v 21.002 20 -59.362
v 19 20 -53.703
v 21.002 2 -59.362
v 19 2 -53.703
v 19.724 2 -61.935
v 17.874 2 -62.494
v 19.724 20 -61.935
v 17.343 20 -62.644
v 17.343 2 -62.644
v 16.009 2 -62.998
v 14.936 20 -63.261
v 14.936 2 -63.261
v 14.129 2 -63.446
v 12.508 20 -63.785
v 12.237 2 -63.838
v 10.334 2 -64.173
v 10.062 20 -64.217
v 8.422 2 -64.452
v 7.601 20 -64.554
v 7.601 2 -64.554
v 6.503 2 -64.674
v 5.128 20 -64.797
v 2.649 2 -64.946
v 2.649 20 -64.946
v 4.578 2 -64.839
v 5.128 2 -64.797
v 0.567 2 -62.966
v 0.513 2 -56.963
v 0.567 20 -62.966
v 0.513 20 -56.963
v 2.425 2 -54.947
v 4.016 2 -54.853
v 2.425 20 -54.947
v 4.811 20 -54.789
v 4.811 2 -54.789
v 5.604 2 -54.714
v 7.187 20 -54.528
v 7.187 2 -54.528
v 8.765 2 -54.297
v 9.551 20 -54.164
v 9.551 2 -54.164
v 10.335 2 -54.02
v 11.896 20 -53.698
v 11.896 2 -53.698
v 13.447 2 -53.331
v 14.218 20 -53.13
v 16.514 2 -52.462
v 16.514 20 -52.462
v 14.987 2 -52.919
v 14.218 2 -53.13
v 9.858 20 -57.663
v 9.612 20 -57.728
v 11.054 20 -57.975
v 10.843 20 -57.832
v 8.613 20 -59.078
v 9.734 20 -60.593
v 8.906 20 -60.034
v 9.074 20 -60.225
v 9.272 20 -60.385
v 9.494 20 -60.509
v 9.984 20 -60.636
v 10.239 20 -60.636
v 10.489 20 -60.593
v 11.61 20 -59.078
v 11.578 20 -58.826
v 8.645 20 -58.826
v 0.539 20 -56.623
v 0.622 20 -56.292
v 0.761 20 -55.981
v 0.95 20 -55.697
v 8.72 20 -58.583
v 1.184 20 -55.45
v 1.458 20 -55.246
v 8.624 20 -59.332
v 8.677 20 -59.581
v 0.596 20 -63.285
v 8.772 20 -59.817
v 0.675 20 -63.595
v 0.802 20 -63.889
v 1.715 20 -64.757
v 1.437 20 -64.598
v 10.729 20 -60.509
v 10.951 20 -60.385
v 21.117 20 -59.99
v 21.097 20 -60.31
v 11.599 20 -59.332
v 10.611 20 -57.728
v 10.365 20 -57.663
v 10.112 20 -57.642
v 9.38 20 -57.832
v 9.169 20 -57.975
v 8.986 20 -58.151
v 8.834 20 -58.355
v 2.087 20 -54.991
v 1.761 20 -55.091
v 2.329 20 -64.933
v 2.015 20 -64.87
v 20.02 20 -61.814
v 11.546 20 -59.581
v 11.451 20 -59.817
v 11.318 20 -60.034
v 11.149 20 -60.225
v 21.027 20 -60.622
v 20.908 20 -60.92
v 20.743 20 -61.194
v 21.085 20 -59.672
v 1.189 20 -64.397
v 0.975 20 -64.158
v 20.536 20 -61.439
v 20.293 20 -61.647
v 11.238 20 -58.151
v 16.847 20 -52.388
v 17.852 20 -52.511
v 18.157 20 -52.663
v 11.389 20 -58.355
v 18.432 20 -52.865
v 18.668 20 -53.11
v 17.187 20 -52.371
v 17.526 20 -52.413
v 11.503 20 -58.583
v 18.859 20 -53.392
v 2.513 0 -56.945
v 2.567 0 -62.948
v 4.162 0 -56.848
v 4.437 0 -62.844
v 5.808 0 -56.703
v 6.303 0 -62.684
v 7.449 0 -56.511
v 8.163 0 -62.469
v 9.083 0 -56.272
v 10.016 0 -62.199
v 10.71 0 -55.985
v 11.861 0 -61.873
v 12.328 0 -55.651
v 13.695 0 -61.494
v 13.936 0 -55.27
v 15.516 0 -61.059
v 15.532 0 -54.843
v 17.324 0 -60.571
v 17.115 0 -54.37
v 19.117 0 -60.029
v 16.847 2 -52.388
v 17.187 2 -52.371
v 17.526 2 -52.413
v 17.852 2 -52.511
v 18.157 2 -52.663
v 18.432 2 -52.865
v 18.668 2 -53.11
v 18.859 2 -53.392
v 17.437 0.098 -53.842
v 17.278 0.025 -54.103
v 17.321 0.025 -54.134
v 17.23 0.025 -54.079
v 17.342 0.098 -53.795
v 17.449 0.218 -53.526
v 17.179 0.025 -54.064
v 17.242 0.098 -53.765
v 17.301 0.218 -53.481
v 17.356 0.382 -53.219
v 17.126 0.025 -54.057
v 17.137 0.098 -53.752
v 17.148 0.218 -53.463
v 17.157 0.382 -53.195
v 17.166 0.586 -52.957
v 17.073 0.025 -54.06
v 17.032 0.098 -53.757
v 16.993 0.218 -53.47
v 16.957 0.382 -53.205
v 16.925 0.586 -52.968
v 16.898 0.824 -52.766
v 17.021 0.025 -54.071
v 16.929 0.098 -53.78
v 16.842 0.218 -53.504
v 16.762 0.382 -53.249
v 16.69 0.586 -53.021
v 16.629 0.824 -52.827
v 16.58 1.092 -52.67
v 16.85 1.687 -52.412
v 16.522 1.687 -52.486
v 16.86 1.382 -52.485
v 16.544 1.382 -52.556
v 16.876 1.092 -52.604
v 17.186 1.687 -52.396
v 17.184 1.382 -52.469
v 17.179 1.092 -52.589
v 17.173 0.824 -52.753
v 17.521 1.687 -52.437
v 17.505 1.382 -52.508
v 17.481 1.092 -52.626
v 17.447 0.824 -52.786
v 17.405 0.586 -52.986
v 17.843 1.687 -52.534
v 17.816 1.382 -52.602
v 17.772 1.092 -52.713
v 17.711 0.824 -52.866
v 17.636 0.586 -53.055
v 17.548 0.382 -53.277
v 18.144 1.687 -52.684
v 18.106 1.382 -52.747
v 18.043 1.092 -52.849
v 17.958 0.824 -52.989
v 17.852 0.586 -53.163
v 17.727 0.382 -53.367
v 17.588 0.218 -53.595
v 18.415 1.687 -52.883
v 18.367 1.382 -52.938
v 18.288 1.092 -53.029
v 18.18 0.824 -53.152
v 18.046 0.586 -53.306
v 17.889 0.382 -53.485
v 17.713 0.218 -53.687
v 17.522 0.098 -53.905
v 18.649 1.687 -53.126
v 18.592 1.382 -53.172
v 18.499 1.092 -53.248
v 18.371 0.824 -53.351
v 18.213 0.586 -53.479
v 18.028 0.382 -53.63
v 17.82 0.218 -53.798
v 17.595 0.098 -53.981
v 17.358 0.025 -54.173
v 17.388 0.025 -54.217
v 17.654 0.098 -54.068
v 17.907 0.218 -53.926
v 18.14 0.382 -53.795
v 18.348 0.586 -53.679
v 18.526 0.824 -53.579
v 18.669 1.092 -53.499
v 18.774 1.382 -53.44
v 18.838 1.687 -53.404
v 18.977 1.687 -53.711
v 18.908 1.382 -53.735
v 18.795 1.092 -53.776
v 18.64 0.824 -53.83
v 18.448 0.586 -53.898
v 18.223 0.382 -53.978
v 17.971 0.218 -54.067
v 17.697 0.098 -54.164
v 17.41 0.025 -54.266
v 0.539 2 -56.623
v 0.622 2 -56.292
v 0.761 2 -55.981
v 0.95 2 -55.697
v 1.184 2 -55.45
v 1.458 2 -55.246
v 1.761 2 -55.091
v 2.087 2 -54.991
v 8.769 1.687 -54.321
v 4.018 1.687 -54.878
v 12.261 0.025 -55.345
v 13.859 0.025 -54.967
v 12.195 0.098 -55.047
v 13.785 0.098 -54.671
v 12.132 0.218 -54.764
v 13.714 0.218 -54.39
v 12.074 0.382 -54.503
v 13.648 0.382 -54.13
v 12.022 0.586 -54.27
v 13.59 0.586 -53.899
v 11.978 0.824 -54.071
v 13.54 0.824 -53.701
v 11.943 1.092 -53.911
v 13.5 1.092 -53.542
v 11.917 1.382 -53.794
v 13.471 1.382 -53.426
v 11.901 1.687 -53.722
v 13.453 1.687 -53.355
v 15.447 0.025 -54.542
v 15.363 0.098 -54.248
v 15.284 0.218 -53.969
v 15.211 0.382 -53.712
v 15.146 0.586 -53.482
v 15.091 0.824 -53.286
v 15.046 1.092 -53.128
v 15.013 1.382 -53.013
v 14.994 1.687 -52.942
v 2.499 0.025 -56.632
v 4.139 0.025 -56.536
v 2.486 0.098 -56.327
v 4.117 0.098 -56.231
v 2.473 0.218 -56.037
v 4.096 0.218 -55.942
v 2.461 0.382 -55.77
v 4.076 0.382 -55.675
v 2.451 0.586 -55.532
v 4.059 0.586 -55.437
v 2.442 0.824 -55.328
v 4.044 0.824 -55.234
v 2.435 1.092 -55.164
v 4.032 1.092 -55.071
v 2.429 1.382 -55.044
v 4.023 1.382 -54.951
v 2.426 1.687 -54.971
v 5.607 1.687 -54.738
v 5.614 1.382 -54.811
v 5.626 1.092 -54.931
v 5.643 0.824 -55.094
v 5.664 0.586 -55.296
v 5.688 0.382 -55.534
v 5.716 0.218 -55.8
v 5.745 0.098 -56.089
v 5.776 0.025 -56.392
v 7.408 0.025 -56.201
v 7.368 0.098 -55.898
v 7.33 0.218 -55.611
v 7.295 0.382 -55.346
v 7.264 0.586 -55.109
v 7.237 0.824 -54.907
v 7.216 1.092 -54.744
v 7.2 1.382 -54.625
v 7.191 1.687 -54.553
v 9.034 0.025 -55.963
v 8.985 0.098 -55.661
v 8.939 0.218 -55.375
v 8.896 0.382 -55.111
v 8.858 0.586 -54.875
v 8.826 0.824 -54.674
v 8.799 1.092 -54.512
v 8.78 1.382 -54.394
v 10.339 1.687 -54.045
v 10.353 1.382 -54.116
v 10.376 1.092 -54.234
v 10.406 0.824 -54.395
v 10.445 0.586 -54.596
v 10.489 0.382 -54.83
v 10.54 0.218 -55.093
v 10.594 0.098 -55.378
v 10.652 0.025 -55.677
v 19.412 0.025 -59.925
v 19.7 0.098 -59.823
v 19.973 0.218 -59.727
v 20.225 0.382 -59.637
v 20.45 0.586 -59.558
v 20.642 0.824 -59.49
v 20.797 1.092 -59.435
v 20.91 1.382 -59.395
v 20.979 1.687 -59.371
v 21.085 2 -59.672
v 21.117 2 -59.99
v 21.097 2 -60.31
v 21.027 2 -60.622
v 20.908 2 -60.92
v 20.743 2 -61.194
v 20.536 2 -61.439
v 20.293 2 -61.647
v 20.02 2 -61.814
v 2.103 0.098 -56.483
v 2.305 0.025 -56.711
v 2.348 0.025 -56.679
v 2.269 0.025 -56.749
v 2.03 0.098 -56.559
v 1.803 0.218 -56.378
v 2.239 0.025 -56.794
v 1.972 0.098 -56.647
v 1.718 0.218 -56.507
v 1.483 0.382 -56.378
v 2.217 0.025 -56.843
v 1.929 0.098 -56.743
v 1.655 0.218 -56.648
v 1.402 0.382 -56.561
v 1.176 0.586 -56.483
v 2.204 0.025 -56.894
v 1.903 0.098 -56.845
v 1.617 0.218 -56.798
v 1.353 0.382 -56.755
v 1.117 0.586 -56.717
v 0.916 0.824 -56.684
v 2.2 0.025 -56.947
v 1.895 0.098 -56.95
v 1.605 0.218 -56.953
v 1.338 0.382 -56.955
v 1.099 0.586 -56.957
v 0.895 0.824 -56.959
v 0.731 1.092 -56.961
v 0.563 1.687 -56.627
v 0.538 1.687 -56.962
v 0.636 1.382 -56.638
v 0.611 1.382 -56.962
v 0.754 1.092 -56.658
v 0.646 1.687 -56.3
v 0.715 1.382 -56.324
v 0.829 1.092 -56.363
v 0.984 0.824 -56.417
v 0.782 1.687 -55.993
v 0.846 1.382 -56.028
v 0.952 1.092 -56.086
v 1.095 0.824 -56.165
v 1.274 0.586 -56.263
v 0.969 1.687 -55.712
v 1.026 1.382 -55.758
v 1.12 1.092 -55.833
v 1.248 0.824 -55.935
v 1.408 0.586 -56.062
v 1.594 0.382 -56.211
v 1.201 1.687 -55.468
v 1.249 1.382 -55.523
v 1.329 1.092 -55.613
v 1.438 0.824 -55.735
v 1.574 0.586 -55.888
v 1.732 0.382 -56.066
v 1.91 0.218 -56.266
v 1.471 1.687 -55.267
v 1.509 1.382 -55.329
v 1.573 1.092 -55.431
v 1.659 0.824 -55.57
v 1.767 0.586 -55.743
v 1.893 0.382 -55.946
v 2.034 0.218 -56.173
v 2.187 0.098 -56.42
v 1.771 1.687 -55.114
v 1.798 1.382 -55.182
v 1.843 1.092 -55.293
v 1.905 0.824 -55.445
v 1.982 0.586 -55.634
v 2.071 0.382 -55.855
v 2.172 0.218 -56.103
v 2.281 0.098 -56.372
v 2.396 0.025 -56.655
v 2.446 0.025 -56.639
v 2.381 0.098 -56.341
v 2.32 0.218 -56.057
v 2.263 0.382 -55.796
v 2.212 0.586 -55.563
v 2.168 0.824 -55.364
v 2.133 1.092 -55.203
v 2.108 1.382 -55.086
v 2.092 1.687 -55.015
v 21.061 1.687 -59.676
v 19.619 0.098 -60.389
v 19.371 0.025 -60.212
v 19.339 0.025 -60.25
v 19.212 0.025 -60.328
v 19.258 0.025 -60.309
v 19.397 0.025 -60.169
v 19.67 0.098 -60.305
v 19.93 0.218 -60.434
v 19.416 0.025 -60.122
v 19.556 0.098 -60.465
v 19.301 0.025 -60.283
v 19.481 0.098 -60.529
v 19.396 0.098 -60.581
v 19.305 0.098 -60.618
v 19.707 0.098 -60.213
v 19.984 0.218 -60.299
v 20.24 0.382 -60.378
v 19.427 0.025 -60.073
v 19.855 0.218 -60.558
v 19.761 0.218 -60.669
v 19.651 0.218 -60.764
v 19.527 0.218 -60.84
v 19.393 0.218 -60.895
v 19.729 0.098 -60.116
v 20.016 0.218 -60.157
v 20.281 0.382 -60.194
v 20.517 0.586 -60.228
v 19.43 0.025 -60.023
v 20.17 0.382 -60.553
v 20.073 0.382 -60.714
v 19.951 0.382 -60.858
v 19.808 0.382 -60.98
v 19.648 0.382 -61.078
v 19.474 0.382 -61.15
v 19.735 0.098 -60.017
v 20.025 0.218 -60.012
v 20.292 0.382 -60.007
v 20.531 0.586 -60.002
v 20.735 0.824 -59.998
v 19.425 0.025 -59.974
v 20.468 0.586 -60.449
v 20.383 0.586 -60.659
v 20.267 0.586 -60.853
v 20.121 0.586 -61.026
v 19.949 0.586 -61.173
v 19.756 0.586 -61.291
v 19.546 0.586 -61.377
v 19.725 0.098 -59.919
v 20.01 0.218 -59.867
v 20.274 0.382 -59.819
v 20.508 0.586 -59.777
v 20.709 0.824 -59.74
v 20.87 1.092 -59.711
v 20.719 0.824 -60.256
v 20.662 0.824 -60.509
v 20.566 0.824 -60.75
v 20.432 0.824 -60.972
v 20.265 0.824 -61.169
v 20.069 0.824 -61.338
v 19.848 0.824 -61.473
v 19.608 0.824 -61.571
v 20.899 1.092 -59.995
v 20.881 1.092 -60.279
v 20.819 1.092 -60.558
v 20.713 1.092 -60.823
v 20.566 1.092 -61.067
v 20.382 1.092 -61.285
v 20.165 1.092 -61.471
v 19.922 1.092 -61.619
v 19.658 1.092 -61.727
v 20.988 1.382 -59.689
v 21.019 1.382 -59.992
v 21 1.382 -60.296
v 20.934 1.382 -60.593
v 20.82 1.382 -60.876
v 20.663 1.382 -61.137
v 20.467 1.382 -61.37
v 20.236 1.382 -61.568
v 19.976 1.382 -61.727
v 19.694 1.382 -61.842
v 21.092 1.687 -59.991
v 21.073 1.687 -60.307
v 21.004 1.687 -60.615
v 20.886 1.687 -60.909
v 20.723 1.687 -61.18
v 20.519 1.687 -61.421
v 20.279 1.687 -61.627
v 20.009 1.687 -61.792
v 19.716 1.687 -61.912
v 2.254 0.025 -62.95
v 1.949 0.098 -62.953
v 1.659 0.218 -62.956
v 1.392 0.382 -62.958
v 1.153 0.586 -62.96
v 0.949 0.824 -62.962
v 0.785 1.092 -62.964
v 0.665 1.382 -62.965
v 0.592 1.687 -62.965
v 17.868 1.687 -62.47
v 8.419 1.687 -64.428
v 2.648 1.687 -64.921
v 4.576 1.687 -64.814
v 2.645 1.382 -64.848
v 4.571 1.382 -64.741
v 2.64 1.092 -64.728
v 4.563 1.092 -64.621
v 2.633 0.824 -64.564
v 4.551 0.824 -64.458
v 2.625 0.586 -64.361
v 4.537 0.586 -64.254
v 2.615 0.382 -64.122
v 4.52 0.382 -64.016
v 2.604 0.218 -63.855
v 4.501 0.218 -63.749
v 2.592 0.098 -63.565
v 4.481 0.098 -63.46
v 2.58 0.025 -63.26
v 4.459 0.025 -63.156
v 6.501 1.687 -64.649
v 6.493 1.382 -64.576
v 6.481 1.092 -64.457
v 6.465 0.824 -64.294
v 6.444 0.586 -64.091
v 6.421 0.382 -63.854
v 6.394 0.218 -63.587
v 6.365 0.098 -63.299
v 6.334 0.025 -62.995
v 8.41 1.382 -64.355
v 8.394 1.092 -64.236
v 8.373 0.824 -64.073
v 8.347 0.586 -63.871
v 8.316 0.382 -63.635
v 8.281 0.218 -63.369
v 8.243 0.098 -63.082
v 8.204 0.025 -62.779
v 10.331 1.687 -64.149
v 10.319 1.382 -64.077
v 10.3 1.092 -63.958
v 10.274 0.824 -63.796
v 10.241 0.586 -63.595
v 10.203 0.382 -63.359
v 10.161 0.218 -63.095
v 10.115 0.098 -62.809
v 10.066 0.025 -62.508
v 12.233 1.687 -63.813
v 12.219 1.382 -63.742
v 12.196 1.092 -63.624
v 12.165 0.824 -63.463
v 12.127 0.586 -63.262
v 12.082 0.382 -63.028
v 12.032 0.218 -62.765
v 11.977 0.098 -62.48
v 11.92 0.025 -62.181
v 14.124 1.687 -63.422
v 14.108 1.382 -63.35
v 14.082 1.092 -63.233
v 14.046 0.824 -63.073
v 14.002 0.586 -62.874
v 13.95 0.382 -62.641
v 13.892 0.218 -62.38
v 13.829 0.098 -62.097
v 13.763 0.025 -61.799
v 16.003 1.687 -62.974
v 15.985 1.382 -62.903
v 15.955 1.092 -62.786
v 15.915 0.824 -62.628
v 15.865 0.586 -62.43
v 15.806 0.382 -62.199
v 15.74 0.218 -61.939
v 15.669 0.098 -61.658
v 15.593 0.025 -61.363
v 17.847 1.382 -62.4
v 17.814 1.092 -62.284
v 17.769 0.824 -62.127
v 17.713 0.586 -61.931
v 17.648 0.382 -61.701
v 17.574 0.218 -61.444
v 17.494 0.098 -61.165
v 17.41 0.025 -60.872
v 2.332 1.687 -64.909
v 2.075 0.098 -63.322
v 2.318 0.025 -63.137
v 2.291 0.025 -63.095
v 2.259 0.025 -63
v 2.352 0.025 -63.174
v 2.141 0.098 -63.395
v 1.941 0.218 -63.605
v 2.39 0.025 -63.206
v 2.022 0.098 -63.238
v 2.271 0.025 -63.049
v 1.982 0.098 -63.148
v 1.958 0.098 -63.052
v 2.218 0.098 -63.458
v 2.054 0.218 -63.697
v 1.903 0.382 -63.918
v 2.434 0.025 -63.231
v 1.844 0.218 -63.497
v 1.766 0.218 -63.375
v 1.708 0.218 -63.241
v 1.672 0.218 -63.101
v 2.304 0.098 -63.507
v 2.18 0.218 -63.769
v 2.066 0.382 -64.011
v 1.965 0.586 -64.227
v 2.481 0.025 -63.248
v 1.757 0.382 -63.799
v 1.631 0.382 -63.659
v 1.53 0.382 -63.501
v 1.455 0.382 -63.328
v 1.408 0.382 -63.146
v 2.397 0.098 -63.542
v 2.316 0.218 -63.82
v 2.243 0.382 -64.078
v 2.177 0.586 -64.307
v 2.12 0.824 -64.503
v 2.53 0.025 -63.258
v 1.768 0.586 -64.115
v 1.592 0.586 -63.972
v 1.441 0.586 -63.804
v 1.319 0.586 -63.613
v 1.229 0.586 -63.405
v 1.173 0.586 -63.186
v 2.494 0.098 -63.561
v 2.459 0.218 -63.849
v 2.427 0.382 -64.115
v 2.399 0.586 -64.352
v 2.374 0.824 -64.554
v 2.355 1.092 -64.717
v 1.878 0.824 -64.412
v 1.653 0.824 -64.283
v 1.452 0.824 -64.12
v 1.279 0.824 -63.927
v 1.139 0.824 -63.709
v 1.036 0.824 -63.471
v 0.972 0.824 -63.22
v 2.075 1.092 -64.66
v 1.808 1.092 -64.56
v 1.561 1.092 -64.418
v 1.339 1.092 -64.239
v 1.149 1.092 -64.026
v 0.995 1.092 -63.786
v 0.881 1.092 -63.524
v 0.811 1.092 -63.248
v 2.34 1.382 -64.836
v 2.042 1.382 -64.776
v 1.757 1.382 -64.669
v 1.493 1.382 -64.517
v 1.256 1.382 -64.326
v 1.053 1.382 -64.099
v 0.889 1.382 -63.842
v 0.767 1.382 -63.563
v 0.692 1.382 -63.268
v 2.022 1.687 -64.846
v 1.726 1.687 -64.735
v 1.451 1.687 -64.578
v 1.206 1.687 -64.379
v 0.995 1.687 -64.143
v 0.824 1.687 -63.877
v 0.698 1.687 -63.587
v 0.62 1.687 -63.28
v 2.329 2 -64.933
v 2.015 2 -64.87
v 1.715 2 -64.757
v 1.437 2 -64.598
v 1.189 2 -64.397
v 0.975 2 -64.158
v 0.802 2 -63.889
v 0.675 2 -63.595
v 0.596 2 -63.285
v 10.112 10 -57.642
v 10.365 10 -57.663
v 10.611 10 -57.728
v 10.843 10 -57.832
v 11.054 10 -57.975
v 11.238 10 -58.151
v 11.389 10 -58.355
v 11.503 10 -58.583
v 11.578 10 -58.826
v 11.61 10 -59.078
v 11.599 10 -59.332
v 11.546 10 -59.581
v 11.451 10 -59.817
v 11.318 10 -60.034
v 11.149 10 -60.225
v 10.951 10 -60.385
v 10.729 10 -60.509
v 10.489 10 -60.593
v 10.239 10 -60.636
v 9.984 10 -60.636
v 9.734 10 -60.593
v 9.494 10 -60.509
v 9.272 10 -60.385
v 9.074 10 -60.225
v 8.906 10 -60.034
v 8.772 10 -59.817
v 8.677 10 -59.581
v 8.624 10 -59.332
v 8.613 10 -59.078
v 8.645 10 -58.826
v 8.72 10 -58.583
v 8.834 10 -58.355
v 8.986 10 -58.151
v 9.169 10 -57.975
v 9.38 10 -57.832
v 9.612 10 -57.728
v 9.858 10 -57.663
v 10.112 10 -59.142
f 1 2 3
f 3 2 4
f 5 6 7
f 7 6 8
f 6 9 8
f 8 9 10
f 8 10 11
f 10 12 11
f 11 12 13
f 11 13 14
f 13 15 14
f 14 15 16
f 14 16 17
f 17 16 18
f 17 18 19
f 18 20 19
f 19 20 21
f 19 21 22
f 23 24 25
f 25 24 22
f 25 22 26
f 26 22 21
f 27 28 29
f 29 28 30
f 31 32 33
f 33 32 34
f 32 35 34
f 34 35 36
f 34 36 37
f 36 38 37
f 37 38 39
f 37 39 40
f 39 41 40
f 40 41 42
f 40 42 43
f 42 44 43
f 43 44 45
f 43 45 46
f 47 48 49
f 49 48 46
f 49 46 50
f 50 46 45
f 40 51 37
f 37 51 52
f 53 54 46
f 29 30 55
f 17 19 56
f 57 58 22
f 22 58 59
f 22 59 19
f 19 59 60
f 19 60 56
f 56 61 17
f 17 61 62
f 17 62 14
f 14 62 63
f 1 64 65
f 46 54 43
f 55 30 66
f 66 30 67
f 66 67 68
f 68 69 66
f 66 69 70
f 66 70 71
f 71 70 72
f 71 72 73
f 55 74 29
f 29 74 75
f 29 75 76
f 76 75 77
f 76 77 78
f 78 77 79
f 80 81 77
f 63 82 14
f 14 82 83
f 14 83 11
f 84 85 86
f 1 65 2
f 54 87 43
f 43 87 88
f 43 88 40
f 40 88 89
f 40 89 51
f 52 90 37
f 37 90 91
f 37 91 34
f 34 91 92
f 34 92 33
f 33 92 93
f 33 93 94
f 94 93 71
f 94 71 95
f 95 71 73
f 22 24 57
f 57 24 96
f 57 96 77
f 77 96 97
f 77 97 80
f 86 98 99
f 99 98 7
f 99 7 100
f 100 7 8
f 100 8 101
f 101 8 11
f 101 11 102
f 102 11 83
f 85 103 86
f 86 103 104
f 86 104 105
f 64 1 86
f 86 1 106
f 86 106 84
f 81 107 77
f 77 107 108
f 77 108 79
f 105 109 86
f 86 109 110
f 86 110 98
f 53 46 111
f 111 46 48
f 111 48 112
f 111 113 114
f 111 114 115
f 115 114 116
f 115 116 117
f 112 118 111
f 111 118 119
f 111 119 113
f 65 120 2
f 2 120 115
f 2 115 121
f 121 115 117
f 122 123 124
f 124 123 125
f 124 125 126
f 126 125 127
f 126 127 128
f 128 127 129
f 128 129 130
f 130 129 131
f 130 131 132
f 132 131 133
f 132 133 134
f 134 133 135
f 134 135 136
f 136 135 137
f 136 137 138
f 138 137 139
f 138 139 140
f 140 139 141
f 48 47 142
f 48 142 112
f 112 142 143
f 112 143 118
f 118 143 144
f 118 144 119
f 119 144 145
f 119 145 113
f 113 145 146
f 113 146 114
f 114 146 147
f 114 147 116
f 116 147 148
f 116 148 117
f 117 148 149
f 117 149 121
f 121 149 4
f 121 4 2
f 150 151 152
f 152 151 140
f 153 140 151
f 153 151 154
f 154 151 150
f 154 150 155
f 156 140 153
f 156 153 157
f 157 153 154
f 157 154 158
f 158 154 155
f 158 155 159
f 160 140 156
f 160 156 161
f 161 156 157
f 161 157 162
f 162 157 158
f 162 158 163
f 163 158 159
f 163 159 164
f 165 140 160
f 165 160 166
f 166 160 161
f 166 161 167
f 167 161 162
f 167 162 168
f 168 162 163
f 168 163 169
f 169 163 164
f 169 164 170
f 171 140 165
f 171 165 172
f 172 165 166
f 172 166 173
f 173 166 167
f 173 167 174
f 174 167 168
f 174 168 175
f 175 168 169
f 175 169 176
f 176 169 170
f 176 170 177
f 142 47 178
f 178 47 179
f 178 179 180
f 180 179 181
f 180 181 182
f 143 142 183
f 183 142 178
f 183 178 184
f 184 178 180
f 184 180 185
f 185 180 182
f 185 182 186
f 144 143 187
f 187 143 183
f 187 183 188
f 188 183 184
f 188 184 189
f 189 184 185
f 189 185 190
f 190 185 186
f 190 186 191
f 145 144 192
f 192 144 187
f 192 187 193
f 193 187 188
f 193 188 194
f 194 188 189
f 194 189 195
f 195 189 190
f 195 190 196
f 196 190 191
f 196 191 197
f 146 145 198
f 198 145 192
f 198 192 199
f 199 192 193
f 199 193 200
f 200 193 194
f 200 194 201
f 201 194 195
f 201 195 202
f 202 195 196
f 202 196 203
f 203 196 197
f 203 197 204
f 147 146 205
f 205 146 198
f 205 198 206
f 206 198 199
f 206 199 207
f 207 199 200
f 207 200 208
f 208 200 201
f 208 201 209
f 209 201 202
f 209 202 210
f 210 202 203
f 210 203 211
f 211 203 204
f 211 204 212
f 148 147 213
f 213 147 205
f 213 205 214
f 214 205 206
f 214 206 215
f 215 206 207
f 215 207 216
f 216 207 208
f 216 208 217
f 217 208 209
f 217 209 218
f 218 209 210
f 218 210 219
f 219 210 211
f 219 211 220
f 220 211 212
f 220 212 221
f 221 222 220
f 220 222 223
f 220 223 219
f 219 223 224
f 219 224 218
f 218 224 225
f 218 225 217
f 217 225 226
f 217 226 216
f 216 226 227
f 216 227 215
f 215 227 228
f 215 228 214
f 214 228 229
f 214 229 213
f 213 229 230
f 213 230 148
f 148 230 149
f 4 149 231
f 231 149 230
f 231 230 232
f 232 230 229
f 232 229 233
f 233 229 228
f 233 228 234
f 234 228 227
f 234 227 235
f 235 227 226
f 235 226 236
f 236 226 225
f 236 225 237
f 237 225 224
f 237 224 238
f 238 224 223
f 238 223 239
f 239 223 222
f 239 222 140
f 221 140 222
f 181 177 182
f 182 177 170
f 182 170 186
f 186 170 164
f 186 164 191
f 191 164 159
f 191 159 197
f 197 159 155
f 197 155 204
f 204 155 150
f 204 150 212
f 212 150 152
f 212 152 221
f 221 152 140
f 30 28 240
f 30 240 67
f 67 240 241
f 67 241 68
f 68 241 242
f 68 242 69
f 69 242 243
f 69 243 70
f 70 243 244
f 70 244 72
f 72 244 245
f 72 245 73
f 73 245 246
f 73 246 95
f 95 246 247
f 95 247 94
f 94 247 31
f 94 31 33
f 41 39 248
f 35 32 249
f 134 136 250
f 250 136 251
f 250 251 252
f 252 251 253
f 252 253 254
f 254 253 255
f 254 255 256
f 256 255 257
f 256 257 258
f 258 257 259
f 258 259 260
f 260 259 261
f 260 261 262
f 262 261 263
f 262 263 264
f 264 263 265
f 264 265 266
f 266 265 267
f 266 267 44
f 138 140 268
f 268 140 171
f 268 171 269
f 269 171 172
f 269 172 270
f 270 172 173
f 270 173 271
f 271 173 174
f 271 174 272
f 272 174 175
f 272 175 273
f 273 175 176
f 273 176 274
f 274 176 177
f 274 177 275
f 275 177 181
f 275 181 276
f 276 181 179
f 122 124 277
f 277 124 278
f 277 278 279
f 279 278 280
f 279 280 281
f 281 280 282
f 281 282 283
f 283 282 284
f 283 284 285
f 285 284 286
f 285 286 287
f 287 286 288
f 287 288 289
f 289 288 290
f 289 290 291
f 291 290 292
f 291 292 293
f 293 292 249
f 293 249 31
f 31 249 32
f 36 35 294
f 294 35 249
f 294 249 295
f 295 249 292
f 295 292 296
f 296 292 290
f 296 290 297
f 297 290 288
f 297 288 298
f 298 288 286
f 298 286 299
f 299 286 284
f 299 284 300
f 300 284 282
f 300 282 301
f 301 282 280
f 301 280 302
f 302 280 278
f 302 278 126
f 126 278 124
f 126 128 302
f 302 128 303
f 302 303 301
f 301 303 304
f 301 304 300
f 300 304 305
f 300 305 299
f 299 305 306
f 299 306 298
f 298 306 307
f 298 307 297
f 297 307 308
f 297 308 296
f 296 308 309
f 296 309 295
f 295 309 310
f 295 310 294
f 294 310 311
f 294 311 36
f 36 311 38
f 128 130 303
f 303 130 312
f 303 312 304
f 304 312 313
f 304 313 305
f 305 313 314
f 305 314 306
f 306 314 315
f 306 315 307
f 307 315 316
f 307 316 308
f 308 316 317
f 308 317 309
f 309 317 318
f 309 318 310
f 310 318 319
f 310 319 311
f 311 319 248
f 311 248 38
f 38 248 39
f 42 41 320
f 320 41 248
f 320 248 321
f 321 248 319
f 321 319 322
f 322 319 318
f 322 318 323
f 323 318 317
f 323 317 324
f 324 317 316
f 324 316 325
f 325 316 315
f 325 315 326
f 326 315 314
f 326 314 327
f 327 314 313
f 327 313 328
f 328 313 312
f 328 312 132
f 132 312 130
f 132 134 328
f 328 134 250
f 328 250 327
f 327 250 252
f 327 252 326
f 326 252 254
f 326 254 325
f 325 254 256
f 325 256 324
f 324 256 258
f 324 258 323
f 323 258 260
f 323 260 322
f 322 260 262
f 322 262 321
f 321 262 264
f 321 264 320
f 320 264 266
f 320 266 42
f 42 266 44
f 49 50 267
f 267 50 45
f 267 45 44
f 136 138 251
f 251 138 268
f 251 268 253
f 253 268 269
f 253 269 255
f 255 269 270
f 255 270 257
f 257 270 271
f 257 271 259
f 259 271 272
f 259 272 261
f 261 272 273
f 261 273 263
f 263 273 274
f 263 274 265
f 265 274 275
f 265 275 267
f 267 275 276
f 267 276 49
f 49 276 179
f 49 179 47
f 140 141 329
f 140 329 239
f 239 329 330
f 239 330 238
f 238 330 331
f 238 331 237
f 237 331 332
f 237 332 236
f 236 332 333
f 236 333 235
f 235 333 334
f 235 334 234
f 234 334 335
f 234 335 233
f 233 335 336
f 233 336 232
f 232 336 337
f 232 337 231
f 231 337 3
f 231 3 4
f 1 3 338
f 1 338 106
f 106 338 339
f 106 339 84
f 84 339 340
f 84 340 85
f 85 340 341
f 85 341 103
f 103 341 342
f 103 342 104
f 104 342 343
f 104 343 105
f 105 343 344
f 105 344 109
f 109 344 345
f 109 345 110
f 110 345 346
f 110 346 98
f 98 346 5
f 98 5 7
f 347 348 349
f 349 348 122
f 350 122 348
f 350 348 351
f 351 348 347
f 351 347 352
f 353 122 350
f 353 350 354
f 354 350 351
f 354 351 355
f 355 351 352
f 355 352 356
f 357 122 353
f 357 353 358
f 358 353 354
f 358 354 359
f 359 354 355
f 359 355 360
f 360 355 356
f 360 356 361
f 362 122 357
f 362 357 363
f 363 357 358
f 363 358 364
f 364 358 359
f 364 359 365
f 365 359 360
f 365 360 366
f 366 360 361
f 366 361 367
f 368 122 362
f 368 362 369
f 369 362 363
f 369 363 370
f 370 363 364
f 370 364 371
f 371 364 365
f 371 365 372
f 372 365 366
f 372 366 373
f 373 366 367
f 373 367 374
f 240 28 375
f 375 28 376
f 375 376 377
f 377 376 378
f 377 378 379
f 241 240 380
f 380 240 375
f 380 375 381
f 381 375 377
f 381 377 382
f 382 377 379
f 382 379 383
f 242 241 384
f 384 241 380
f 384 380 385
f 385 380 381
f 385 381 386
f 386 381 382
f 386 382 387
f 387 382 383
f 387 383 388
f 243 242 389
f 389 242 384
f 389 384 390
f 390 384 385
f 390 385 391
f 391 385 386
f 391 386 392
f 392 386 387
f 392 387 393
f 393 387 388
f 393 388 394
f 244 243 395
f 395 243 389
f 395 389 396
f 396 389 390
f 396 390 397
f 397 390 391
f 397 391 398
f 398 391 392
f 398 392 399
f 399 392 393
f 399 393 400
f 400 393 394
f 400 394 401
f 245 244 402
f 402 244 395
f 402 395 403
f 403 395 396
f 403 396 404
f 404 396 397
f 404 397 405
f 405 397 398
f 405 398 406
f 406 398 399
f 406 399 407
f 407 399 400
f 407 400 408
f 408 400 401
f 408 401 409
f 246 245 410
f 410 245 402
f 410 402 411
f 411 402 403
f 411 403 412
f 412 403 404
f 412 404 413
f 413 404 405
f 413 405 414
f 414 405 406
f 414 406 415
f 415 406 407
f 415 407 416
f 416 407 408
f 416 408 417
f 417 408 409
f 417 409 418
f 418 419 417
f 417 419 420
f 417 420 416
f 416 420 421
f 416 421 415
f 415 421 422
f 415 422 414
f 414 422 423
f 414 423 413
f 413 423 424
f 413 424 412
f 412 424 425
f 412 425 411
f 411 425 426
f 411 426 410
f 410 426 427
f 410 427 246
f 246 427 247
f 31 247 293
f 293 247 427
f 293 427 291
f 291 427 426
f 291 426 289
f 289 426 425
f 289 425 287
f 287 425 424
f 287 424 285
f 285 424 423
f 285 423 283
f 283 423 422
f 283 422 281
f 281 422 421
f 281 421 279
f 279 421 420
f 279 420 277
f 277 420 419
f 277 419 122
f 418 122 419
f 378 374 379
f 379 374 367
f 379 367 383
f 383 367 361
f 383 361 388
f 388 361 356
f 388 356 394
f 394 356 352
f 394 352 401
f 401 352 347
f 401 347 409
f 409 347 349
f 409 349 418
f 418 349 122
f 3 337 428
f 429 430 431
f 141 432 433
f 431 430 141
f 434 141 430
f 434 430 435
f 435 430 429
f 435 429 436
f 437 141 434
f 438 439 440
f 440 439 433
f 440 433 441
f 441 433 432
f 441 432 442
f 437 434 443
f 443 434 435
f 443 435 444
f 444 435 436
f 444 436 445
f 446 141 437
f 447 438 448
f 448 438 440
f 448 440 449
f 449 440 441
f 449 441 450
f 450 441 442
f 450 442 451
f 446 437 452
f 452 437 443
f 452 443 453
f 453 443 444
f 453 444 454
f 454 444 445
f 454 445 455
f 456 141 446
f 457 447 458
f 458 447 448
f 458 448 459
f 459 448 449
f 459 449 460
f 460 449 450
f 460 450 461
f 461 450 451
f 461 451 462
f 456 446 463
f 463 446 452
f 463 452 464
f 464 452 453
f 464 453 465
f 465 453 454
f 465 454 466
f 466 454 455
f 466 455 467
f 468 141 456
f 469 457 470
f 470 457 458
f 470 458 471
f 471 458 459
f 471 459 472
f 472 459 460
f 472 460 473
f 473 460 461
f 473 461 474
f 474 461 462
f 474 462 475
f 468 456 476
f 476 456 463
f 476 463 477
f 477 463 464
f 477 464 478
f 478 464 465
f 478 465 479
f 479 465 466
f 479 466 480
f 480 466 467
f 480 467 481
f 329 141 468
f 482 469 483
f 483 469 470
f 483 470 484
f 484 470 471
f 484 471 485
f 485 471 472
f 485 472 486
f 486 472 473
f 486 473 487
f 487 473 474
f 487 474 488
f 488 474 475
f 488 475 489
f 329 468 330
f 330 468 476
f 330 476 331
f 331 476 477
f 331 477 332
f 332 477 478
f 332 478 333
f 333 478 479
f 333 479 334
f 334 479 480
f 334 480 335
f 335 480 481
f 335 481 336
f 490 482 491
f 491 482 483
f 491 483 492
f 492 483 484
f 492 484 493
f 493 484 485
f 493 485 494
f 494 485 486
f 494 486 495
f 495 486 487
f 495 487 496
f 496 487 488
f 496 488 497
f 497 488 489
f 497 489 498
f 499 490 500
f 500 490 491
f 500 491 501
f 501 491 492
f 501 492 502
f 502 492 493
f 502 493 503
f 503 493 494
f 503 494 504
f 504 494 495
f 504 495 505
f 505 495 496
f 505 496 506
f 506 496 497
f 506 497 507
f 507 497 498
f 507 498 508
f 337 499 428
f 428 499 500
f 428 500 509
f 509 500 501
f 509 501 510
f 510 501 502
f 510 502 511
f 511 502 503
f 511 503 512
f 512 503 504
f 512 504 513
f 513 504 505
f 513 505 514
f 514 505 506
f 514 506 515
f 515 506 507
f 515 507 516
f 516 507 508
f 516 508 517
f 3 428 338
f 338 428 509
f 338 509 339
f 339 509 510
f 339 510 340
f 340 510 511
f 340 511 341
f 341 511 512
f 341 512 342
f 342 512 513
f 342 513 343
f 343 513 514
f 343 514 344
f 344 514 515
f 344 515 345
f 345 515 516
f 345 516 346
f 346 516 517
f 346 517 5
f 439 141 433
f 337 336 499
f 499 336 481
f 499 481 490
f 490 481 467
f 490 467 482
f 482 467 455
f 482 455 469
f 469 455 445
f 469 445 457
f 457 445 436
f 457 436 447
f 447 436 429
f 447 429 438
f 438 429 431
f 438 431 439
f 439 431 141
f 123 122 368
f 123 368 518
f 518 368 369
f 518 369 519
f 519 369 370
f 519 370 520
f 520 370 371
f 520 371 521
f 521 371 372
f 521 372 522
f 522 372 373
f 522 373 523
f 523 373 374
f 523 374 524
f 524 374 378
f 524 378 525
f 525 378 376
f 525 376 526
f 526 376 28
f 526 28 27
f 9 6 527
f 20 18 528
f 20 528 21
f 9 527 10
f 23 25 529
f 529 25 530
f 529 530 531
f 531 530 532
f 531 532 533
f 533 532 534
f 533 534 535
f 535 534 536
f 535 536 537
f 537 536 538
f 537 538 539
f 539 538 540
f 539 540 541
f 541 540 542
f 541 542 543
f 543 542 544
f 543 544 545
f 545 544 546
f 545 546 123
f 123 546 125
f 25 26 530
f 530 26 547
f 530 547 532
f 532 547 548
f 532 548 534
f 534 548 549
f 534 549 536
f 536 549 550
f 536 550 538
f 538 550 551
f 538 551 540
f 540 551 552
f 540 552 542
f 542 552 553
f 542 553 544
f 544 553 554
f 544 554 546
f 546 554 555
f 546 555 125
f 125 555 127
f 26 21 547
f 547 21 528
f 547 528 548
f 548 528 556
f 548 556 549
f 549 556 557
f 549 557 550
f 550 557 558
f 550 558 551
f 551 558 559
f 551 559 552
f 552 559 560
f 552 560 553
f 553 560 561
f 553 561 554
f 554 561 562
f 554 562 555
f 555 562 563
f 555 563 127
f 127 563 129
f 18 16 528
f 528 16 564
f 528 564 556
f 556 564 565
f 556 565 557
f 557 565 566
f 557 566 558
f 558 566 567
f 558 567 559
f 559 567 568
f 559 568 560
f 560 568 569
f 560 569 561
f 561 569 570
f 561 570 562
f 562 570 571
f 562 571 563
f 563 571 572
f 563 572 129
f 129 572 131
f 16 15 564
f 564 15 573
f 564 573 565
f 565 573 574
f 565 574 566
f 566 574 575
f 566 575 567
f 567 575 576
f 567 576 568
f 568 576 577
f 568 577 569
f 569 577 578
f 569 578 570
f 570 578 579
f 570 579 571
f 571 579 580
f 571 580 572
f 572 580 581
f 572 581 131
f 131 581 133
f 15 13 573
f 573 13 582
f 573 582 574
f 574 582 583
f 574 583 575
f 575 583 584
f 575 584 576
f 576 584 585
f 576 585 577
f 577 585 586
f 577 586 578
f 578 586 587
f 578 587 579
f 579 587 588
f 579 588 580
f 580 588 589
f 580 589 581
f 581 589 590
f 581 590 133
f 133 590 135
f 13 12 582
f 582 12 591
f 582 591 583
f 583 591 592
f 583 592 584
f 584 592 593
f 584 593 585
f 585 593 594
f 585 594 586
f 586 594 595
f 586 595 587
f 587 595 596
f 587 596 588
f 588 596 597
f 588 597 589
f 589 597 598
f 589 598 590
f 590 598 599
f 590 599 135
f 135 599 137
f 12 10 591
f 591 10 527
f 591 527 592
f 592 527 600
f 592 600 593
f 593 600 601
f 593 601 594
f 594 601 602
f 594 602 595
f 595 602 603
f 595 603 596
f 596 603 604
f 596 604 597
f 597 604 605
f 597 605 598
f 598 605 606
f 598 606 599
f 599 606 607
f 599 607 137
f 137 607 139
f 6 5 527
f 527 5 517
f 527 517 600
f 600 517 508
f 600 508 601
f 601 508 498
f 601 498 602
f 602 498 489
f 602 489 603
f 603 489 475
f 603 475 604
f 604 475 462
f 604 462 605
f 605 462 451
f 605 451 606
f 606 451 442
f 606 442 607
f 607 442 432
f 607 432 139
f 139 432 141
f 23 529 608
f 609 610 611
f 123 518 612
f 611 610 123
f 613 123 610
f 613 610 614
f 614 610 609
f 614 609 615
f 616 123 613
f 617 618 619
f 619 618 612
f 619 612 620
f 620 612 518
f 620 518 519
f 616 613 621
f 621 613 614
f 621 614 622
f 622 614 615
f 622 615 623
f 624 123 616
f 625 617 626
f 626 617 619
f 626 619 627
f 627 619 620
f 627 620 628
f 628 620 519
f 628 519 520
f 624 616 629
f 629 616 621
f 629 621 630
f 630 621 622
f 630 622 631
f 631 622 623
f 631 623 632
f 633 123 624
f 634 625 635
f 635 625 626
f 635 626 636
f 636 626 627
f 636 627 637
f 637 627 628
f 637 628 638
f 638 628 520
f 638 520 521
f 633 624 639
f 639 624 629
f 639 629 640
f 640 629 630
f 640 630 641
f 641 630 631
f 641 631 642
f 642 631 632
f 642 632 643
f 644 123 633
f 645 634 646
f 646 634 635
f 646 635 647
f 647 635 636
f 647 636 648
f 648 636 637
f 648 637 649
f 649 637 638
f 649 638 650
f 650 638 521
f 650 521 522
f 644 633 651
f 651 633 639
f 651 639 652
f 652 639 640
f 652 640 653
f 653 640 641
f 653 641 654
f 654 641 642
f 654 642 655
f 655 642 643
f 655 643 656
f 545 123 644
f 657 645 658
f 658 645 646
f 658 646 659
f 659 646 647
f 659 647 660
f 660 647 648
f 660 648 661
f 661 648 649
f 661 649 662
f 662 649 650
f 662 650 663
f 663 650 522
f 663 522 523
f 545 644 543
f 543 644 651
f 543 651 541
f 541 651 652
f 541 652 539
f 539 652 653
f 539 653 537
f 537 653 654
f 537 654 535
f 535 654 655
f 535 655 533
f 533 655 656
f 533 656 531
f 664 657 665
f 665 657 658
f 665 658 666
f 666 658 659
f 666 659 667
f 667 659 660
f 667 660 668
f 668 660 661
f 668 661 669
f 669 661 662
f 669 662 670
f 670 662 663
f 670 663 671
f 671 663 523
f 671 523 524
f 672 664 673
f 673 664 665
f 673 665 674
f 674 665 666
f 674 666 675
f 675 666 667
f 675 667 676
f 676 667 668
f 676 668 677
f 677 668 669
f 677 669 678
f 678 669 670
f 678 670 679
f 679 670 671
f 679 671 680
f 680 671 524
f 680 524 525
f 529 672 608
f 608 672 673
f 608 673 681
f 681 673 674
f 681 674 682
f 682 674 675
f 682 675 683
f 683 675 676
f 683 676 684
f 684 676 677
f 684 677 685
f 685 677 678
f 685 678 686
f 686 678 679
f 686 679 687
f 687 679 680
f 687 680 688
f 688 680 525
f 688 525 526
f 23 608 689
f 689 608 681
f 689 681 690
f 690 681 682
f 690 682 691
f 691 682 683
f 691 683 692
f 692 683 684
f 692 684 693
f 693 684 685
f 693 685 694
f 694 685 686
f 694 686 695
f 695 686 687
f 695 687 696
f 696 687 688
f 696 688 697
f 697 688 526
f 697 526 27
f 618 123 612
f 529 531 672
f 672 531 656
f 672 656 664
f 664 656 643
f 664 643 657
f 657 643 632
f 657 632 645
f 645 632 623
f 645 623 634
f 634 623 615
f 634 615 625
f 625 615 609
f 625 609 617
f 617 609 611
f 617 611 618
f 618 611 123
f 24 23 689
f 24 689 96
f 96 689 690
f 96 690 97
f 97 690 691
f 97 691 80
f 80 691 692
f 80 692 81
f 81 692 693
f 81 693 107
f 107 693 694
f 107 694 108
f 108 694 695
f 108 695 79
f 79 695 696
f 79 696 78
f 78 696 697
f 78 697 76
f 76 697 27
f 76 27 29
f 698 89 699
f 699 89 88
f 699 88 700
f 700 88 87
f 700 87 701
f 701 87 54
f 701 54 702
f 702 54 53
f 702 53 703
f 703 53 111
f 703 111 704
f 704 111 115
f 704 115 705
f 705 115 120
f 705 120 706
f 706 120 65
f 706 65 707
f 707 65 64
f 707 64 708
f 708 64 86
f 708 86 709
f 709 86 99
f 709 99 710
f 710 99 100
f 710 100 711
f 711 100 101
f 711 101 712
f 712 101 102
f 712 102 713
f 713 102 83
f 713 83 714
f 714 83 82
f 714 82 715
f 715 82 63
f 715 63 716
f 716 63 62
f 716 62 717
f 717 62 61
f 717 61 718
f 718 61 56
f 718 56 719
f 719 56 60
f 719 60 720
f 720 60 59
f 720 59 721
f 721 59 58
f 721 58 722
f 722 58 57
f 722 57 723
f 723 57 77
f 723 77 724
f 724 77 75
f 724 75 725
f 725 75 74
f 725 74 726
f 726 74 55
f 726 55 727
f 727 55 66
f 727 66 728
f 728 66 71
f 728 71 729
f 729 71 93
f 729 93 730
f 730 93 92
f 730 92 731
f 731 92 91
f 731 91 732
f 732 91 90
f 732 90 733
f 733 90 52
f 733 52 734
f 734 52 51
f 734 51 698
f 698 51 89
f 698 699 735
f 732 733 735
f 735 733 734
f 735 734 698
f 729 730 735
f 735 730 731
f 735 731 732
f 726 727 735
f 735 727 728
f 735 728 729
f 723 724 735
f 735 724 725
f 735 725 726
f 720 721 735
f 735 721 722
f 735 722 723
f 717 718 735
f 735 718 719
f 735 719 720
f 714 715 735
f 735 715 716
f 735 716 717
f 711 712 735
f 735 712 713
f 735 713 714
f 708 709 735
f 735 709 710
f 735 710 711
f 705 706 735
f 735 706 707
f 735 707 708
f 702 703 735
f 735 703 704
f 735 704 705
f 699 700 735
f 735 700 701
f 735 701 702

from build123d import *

# Parameters (mm, degrees)
EXTRUDE_1_DEPTH     = 20
FILLET_1_R          = 2
SKETCH_2_R          = 1.5
CUT_EXTRUDE_1_DEPTH = 10


with BuildPart() as part:
    # 草图1 → 凸台-拉伸1 (new body)
    with BuildSketch(Plane(origin=(0, 0, 0), x_dir=(1, 0, 0), z_dir=(0, 1, 0))):
        with BuildLine():
            Line((0.585585586, 64.997362174), (0.495495495, 54.997767993))
            ThreePointArc((0.495495495, 54.997767993), (9.550649772, 54.164426416), (18.344731031, 51.850466183))
            Line((18.344731031, 51.850466183), (21.680136673, 61.277823671))
            ThreePointArc((21.680136673, 61.277823671), (11.287131548, 64.012503946), (0.585585586, 64.997362174))
        make_face()
    extrude(amount=EXTRUDE_1_DEPTH)

    # 圆角1
    fillet_1_edges = [part.edges().sort_by_distance(p)[0] for p in [
        (9.550649772, 0, -54.164426416),
        (0.540540541, 0, -59.997565083),
        (11.287131548, 0, -64.012503946),
        (20.012433852, 0, -56.564144927),
        (18.344731031, 10, -51.850466183),
        (0.495495495, 10, -54.997767993),
        (0.585585586, 10, -64.997362174),
        (21.680136673, 10, -61.277823671),
    ]]
    fillet(fillet_1_edges, radius=FILLET_1_R)

    # 草图2 → 切除-拉伸1 (cut)
    with BuildSketch(Plane(origin=(0, 20, 0), x_dir=(1, 0, 0), z_dir=(0, 1, 0))):
        with Locations(Location((10.111516208, 59.141840012, 0), (0, 0, 270))):
            Circle(SKETCH_2_R)
    extrude(amount=-CUT_EXTRUDE_1_DEPTH, mode=Mode.SUBTRACT)


solid = part.part
